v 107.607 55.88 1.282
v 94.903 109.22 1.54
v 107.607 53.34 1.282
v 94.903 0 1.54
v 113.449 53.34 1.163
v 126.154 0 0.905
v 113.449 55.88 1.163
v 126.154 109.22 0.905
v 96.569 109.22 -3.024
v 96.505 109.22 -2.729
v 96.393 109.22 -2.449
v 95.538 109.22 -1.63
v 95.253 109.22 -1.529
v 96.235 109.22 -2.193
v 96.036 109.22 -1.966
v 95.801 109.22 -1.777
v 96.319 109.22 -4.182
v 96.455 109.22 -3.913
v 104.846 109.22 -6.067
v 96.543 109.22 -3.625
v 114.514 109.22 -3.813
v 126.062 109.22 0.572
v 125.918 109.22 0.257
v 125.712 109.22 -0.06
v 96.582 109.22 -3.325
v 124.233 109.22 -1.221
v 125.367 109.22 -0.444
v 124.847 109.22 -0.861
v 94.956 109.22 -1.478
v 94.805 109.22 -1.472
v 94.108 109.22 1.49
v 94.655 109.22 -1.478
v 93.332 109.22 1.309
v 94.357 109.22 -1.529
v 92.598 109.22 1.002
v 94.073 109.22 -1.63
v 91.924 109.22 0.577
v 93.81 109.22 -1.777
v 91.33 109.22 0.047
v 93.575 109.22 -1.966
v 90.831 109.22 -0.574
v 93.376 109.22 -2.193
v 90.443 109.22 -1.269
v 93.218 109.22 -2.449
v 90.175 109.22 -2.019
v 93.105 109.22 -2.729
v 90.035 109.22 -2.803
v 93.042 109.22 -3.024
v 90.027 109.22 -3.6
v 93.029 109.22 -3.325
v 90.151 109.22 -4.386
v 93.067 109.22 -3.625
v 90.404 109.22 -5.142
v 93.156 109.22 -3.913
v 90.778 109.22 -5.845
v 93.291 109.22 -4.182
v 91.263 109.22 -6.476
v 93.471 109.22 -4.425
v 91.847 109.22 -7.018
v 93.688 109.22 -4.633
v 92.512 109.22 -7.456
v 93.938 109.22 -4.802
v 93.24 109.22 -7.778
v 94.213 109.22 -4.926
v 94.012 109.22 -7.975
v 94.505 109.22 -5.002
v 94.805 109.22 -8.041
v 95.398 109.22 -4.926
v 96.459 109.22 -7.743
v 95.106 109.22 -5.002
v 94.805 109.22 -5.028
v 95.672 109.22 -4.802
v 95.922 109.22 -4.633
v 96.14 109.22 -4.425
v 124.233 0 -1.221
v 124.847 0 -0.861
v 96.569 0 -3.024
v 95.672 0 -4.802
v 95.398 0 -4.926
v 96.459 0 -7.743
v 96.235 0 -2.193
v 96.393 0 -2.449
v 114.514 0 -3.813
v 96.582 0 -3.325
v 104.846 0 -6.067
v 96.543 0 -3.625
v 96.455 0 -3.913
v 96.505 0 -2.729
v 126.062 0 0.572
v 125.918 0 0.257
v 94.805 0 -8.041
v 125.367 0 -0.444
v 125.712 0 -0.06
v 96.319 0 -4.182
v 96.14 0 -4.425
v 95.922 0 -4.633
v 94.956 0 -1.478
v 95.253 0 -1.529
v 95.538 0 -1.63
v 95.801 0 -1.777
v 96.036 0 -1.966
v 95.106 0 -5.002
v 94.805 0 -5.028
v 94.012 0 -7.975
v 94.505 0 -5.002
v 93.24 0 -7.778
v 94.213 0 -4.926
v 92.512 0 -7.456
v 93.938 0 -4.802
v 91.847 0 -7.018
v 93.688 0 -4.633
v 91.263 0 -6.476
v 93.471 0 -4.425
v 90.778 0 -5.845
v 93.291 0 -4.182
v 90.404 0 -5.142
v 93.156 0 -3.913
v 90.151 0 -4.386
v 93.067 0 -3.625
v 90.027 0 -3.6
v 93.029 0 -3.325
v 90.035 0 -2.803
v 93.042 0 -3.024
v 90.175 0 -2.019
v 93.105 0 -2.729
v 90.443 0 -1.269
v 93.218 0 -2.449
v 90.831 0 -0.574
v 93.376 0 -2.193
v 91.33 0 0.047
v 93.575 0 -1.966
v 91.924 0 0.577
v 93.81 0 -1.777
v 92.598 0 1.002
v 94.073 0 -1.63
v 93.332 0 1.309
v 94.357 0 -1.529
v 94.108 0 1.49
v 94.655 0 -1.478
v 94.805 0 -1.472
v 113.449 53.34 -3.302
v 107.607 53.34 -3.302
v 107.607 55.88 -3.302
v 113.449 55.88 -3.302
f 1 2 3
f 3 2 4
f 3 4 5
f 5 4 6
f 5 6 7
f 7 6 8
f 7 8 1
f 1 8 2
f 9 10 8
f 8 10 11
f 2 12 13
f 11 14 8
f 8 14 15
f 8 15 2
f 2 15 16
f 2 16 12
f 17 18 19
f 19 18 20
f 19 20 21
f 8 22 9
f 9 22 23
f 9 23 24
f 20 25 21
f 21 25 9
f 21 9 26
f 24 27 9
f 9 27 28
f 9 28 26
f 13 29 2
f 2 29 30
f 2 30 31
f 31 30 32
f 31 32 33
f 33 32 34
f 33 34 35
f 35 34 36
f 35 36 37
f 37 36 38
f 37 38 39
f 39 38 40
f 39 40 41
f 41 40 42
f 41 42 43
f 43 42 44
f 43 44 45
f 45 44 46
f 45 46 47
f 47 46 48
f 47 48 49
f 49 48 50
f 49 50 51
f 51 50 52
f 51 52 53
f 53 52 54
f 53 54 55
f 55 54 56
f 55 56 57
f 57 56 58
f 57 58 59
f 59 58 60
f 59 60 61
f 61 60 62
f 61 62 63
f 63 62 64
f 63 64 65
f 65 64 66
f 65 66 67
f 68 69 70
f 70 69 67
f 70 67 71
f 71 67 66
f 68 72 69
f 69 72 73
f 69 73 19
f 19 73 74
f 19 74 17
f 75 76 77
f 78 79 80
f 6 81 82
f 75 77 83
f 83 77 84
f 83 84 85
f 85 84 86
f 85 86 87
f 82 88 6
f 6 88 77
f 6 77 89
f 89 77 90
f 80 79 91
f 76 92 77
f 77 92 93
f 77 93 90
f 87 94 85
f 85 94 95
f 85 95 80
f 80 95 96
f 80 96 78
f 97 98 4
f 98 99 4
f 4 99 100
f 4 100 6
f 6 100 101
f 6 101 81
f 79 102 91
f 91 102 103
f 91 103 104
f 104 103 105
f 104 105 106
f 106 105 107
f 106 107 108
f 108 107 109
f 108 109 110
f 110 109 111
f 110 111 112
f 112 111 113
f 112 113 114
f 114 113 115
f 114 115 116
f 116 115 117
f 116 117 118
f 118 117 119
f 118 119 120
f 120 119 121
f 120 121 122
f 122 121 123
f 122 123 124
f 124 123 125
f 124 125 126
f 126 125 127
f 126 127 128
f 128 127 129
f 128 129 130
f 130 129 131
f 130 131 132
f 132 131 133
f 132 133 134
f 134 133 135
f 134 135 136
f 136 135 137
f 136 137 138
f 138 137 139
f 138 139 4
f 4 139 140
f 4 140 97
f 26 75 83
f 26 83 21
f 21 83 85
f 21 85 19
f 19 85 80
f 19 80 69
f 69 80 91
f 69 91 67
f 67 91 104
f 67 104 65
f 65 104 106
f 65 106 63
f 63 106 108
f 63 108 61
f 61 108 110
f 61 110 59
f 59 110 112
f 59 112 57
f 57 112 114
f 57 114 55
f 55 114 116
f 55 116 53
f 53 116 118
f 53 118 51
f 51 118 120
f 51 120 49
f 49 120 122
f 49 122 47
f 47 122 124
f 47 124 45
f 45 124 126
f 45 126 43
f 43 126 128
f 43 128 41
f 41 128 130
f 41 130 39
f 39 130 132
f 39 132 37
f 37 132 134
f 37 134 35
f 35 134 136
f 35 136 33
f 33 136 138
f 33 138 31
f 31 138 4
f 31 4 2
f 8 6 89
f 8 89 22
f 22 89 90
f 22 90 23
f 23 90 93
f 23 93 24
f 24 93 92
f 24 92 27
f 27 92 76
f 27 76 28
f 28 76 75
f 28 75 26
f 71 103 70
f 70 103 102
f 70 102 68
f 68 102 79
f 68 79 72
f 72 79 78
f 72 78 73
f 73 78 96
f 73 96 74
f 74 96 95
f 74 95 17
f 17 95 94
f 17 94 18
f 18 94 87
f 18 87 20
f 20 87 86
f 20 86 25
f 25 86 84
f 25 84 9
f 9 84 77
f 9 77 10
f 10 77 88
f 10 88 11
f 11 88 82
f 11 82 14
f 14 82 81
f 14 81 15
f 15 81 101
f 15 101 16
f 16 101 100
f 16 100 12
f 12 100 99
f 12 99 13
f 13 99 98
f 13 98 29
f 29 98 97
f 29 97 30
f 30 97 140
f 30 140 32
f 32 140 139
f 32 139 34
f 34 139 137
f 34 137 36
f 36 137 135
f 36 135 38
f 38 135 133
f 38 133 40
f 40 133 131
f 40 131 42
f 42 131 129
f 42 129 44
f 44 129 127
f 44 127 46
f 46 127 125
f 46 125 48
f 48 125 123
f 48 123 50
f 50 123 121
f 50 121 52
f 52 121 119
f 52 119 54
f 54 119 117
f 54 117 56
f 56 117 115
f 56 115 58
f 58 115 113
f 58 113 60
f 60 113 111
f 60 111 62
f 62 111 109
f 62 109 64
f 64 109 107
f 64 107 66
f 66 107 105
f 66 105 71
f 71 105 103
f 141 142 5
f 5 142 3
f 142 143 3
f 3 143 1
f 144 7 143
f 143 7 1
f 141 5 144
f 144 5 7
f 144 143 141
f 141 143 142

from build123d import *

# Parameters (mm, degrees)
SKETCH1_R           = 1.778
BOSS_EXTRUDE1_DEPTH = 109.22
SKETCH3_W           = 2.921
SKETCH3_H           = 1.27
CUT_EXTRUDE1_DEPTH  = 5.842


with BuildPart() as part:
    # Sketch1 → Boss-Extrude1 (new body)
    with BuildSketch(Plane(origin=(0, 0, 0), x_dir=(1, 0, 0), z_dir=(0, 1, 0))):
        with BuildLine():
            Line((94.902676098, -1.539936949), (126.153699606, -0.905121353))
            add(Edge.make_bspline(
                [(124.23332742, 1.220658438), (125.083825562, 0.793733928), (125.965467473, 0.088202275), (126.153699606, -0.905121353)],
                knots=[0, 0, 0, 0, 1, 1, 1, 1], degree=3))
            add(Edge.make_bspline(
                [(94.805376938, 8.04083585), (104.725661306, 6.284506107), (114.540546966, 3.959935264), (124.23332742, 1.220658438)],
                knots=[0, 0, 0, 0, 1, 1, 1, 1], degree=3))
            ThreePointArc((94.805376938, 8.04083585), (90.01474351, 3.201303292), (94.902676098, -1.539936949))
        make_face()
        with Locations(Location((94.805376938, 3.249955381, 0), (0, 0, 270))):
            Circle(SKETCH1_R, mode=Mode.SUBTRACT)
    extrude(amount=BOSS_EXTRUDE1_DEPTH)

    # Sketch3 → Cut-Extrude1 (cut)
    with BuildSketch(Plane.XY.offset(2.54)):
        with Locations((109.067687852, 55.245)):
            Rectangle(SKETCH3_W, SKETCH3_H)
        with Locations((111.988687852, 55.245)):
            Rectangle(SKETCH3_W, SKETCH3_H)
        with Locations((109.067687852, 53.975)):
            Rectangle(SKETCH3_W, SKETCH3_H)
        with Locations((111.988687852, 53.975)):
            Rectangle(SKETCH3_W, SKETCH3_H)
    extrude(amount=-CUT_EXTRUDE1_DEPTH, mode=Mode.SUBTRACT)


solid = part.part
